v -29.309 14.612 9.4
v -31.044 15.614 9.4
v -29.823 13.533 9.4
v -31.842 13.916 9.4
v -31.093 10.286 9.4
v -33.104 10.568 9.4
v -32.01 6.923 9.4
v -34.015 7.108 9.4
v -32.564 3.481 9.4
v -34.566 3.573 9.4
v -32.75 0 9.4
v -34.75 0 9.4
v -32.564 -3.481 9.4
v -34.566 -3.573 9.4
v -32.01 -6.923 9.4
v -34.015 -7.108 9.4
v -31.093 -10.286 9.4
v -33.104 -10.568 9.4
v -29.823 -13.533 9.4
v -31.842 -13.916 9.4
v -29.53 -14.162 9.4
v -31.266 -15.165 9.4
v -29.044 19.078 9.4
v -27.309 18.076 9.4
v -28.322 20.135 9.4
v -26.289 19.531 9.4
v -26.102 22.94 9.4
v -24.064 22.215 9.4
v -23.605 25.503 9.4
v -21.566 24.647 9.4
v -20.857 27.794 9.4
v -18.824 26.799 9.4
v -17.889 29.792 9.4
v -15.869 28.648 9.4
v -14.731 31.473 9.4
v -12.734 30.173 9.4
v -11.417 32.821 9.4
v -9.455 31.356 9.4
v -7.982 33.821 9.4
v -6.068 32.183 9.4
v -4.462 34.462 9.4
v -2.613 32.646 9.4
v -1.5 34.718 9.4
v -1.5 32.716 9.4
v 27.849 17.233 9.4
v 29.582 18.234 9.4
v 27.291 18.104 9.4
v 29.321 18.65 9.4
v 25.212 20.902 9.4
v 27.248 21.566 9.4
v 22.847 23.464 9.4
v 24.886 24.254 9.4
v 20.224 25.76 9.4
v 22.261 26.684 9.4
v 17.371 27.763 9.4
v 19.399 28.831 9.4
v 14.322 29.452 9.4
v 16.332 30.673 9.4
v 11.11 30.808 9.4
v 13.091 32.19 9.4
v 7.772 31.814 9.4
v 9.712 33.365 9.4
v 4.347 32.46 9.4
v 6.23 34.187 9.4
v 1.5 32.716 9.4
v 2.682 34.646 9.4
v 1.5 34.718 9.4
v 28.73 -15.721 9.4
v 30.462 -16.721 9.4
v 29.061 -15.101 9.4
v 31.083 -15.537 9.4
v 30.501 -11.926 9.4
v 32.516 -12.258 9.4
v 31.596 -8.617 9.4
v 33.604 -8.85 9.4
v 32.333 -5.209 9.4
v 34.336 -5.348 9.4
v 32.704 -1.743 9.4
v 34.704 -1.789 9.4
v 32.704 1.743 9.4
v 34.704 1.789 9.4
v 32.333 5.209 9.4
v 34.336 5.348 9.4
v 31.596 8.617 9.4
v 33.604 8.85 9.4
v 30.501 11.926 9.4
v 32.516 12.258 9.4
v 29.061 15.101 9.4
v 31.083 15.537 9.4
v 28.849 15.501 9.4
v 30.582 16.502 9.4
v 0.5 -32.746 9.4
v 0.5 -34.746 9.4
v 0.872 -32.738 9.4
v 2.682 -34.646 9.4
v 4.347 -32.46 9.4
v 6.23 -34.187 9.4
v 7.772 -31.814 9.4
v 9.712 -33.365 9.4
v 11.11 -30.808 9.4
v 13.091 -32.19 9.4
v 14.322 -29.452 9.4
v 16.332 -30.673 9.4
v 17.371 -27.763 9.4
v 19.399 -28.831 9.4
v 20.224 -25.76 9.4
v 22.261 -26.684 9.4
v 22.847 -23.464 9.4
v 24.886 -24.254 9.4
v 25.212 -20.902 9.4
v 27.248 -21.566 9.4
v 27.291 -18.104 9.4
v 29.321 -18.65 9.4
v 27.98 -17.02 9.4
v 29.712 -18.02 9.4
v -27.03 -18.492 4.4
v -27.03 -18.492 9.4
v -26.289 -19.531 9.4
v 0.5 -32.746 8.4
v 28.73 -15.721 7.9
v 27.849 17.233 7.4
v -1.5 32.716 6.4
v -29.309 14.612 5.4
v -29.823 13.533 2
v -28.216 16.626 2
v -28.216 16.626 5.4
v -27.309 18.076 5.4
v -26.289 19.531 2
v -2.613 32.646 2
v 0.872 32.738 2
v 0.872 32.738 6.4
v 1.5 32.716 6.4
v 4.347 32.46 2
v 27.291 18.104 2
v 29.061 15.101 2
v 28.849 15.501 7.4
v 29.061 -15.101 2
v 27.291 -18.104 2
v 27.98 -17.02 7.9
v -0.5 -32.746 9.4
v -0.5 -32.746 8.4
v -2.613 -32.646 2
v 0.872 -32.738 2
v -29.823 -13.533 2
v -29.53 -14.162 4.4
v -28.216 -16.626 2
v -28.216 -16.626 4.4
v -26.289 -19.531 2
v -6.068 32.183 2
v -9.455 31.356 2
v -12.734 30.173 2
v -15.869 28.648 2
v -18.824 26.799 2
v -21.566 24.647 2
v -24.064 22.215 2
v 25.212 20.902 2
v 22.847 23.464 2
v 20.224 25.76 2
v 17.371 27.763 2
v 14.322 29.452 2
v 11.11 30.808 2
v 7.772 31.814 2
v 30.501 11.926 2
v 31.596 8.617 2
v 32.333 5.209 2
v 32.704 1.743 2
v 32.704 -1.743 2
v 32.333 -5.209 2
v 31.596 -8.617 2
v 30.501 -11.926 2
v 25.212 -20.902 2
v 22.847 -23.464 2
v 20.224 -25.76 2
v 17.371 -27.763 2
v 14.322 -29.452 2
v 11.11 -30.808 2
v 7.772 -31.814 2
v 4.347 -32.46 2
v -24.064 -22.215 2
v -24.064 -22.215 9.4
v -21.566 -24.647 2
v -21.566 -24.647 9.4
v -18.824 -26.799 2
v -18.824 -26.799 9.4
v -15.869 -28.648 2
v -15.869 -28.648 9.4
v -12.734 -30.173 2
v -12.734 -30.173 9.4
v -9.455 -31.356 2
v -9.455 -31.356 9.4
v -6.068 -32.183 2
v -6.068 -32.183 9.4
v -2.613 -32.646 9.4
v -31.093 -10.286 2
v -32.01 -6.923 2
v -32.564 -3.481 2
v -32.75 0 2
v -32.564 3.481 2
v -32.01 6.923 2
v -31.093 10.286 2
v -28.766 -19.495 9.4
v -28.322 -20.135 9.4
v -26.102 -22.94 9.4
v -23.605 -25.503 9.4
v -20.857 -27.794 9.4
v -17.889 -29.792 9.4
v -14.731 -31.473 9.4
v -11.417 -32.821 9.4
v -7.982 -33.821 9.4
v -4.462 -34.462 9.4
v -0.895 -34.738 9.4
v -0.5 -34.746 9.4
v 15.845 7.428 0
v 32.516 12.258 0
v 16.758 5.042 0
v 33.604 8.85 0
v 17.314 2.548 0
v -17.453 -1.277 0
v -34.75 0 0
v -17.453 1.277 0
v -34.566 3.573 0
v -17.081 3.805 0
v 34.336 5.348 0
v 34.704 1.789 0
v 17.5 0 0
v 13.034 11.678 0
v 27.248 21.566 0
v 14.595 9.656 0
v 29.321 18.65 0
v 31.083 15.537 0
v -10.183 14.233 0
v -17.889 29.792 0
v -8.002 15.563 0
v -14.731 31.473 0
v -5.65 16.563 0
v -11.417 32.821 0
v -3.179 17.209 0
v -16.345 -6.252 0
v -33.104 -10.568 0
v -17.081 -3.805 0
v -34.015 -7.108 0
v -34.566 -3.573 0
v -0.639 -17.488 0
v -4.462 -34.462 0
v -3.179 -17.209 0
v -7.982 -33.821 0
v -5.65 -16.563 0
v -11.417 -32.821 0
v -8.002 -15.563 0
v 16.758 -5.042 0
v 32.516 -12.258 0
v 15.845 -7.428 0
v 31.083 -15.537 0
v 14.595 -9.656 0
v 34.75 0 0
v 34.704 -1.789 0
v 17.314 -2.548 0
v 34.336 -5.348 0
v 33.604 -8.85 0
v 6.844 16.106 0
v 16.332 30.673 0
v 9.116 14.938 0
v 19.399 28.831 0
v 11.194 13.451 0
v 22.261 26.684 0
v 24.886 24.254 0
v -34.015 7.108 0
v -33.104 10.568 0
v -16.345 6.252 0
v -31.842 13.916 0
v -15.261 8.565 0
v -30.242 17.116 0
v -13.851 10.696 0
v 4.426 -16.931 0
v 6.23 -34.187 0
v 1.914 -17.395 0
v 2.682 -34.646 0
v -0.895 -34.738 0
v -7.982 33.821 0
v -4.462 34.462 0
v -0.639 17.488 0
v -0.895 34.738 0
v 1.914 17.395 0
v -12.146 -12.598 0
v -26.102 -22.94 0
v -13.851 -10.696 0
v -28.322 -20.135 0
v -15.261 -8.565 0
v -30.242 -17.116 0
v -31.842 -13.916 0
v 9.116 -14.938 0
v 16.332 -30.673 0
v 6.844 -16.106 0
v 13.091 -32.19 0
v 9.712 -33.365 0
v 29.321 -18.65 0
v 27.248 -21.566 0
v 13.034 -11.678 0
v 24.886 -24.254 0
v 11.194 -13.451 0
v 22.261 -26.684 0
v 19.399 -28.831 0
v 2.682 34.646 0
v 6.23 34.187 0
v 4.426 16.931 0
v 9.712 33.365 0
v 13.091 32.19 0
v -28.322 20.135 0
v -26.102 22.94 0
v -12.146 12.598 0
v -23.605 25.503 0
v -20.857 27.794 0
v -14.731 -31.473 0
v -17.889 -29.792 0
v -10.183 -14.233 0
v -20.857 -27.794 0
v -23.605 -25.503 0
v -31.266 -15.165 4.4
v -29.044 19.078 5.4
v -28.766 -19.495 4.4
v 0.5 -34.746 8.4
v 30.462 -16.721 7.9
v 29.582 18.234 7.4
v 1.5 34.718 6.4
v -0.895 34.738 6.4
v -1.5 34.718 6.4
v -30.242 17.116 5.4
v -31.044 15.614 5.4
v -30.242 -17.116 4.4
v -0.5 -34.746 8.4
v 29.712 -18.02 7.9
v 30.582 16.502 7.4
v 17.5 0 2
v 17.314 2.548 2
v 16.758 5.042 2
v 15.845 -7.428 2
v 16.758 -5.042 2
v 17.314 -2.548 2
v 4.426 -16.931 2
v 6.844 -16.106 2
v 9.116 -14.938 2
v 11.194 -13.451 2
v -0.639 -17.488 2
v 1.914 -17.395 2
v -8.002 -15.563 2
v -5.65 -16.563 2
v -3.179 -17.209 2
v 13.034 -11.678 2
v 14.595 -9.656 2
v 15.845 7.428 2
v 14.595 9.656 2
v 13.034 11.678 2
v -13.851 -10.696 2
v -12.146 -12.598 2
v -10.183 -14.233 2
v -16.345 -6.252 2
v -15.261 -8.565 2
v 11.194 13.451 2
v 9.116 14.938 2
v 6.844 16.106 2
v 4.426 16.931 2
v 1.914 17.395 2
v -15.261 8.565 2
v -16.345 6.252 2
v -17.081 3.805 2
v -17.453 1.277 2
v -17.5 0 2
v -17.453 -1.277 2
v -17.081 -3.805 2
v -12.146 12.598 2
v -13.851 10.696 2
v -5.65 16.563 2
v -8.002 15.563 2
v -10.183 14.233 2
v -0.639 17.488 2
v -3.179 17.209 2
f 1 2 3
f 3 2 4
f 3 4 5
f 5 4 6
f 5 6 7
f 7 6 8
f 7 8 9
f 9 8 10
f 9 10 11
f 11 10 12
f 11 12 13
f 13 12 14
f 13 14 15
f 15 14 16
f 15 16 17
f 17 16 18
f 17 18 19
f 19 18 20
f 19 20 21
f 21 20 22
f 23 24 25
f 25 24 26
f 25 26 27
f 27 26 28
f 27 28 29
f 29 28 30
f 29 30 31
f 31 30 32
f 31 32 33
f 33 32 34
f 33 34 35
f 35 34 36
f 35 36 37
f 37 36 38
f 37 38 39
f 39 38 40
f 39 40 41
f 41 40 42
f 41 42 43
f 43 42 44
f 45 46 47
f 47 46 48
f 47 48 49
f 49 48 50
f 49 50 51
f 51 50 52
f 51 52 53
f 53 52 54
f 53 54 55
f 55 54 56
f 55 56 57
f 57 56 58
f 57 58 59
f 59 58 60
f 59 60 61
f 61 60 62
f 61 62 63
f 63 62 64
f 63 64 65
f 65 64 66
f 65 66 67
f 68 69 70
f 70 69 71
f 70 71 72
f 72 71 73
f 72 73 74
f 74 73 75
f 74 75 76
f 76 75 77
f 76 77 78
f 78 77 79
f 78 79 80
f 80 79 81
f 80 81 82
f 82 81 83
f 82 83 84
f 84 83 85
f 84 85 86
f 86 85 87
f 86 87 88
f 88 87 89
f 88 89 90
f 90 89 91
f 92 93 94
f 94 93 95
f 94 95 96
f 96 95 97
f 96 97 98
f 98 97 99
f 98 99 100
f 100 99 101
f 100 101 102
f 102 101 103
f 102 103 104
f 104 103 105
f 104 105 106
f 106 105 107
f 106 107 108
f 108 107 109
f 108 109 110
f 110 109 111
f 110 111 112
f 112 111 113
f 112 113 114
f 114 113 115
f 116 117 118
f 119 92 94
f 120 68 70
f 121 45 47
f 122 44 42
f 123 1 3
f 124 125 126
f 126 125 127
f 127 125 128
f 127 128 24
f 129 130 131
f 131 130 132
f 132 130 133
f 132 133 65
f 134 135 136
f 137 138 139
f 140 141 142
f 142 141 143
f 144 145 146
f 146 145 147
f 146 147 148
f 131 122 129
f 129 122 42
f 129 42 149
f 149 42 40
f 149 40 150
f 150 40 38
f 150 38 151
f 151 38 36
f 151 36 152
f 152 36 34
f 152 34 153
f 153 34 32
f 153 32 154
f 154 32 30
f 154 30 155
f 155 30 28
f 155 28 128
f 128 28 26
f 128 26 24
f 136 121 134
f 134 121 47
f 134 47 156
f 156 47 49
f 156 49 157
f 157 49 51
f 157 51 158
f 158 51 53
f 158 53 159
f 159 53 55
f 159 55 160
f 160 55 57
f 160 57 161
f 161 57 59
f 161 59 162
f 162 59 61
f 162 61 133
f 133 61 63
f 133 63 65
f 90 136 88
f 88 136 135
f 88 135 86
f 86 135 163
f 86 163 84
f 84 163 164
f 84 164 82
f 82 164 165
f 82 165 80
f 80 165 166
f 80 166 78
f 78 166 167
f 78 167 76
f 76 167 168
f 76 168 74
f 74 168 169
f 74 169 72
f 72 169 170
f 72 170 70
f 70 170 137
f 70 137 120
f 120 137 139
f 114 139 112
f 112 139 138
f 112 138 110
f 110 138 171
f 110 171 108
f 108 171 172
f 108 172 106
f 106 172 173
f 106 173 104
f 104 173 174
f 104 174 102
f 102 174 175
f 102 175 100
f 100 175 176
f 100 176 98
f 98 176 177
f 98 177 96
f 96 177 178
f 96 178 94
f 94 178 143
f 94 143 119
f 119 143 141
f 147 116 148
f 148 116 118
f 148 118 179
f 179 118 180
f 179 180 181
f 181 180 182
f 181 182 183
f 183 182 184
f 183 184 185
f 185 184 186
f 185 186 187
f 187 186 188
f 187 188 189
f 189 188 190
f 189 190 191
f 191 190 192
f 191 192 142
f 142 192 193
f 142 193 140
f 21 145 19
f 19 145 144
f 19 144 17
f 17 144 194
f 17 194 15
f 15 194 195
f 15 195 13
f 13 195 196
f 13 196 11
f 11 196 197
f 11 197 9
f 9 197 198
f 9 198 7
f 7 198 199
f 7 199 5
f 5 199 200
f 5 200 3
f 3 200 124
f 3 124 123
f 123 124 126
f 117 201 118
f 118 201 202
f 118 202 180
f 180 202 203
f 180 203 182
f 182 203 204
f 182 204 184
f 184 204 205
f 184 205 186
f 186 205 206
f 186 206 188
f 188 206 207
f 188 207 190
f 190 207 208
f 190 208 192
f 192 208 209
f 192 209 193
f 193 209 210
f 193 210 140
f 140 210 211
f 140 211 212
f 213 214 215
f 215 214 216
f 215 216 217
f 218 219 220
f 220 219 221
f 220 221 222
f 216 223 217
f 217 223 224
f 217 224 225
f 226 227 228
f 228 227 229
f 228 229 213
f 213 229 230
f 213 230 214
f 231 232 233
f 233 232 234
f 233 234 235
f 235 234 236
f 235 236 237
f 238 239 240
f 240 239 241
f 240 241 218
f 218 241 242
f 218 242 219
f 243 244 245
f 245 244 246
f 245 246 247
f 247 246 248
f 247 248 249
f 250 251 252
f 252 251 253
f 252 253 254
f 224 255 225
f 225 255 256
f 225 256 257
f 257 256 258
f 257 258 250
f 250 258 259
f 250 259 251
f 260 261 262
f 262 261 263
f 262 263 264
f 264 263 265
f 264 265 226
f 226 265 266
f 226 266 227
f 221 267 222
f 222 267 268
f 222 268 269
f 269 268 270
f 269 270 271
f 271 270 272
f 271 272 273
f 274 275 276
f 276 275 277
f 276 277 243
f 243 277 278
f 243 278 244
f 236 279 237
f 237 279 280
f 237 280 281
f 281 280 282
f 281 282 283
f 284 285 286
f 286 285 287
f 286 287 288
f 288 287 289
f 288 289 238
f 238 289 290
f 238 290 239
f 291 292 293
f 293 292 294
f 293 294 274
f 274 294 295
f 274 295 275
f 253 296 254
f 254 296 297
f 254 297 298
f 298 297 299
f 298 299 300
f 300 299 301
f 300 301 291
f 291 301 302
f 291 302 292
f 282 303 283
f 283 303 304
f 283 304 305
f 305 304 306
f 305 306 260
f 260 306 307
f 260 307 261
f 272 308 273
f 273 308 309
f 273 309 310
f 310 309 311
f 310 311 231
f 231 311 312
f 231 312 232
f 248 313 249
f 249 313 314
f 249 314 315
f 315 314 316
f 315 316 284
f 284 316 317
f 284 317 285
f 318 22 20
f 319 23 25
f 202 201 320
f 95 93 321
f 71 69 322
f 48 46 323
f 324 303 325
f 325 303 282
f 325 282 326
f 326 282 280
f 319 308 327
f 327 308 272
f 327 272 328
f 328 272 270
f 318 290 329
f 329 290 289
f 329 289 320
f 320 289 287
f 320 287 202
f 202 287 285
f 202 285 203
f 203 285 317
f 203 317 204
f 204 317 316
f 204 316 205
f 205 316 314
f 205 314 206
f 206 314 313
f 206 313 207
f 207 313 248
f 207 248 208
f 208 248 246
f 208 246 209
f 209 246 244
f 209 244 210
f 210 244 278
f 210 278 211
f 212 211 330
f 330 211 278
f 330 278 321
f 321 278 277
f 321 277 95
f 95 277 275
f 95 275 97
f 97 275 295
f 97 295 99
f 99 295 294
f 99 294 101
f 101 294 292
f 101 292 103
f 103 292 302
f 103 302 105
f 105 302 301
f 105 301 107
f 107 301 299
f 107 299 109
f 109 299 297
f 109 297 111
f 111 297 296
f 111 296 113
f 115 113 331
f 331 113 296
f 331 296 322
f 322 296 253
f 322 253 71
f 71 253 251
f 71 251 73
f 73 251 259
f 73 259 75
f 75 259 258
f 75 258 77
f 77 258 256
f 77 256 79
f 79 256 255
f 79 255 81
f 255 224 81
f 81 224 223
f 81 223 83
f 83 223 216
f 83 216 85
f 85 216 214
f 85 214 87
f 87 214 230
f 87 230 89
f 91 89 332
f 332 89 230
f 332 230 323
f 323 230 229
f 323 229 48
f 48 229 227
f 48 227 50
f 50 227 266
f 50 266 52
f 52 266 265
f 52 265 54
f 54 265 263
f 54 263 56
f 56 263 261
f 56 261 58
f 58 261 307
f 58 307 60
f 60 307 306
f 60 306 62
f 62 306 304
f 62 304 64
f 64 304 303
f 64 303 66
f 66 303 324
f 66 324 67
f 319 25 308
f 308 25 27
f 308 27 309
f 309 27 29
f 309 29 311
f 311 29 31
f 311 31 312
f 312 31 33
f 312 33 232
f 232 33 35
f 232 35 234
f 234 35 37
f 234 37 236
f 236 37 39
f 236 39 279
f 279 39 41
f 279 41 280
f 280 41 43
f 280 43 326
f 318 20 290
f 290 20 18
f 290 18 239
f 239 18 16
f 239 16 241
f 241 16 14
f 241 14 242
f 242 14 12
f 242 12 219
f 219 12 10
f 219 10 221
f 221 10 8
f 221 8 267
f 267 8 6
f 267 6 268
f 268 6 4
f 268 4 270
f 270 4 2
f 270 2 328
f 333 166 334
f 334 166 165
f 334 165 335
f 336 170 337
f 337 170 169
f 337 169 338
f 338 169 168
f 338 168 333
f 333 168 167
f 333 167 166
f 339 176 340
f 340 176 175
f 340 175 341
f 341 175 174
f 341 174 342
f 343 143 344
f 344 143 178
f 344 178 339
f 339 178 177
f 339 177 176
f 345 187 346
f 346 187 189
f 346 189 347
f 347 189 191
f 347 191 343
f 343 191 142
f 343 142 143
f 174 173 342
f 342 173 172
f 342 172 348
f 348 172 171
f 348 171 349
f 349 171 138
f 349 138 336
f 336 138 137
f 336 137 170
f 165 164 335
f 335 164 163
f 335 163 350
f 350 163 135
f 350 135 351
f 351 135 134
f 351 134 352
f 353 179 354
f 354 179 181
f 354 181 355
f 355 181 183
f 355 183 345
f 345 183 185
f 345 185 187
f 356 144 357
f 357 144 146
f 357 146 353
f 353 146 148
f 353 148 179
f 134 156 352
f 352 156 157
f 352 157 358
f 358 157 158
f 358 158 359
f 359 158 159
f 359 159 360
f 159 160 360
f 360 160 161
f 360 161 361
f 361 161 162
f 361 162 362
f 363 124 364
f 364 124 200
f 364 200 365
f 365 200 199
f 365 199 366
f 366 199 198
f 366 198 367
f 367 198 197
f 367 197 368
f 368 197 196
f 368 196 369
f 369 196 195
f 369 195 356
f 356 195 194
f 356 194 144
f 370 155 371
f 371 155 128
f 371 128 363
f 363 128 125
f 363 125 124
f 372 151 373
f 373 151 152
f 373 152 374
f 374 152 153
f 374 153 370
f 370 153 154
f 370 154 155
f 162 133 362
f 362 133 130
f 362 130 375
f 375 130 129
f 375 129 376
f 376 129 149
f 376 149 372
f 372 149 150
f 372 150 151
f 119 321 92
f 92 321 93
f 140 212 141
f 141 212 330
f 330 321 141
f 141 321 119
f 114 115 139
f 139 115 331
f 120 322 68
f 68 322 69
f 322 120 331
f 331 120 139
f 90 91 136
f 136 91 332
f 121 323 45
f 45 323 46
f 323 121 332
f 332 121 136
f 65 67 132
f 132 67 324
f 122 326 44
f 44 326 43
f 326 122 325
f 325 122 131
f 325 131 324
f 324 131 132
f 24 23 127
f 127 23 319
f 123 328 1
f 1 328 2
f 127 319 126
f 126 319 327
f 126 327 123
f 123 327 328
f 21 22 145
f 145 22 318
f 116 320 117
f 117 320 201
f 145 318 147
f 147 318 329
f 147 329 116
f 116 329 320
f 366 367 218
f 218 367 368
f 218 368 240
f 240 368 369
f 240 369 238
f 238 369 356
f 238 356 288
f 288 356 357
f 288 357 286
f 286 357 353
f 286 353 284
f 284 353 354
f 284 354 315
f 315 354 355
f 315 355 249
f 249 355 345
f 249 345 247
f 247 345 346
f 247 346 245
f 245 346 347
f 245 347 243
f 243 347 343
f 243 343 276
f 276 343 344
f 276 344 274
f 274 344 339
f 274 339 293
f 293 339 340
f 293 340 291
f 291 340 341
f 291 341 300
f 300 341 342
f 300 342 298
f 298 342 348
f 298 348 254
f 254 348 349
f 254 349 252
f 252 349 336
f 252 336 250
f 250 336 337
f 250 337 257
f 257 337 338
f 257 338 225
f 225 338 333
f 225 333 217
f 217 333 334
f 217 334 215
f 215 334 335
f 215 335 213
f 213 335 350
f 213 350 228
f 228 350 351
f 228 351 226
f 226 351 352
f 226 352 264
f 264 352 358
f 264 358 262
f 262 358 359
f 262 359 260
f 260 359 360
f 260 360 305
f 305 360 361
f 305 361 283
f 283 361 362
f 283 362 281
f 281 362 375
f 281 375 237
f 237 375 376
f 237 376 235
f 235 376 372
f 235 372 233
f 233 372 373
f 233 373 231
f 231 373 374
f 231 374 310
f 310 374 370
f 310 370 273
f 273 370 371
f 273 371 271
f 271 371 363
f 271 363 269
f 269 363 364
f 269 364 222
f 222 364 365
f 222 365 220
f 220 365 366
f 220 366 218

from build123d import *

# Parameters (mm, degrees)
ESQUISSE1_R                  = 34.75
ESQUISSE1_R_2                = 32.75
BOSS_EXTRU_1_DEPTH           = 9.4
ESQUISSE2_R                  = 34.75
BOSS_EXTRU_2_DEPTH           = 2
ESQUISSE3_W                  = 1
ESQUISSE3_H                  = 2.5
ENL_V_MAT_EXTRU_1_DEPTH      = 1
ENL_V_MAT_EXTRU_2_DEPTH      = 1.5
ENL_V_MAT_EXTRU_3_DEPTH      = 2
ESQUISSE6_W                  = 3
ESQUISSE6_H                  = 2.5
ENL_V_MAT_EXTRU_4_DEPTH      = 3
ENL_V_MAT_EXTRU_5_DEPTH      = 4
ENL_V_MAT_EXTRU_6_DEPTH      = 5
ENL_V_MAT_EXTRU_7_DEPTH      = 50.697937583
ENL_V_MAT_EXTRU_7_DEPTH_BACK = 50.697937583
ESQUISSE9_R                  = 17.5


with BuildPart() as part:
    # Esquisse1 → Boss.-Extru.1 (new body)
    with BuildSketch(Plane.XY):
        Circle(ESQUISSE1_R)
        Circle(ESQUISSE1_R_2, mode=Mode.SUBTRACT)
    extrude(amount=BOSS_EXTRU_1_DEPTH)

    # Esquisse2 → Boss.-Extru.2 (add)
    with BuildSketch(Plane(origin=(0, 0, 0), x_dir=(-1, 0, 0), z_dir=(0, 0, -1))):
        with Locations(Location((0, 0, 0), (0, 0, 180))):
            Circle(ESQUISSE2_R)
    extrude(amount=-BOSS_EXTRU_2_DEPTH)

    # Esquisse3 → Enlèv. mat.-Extru.1 (cut)
    with BuildSketch(Plane.XY.offset(9.4)):
        with Locations((0, -33.996182984)):
            Rectangle(ESQUISSE3_W, ESQUISSE3_H)
    extrude(amount=-ENL_V_MAT_EXTRU_1_DEPTH, mode=Mode.SUBTRACT)

    # Esquisse4 → Enlèv. mat.-Extru.2 (cut)
    with BuildSketch(Plane.XY.offset(9.4)):
        Polygon((28.729893758, -15.721186491), (27.979893758, -17.020224597), (30.144957267, -18.270224597), (30.894957267, -16.971186491), align=None)
    extrude(amount=-ENL_V_MAT_EXTRU_2_DEPTH, mode=Mode.SUBTRACT)

    # Esquisse5 → Enlèv. mat.-Extru.3 (cut)
    with BuildSketch(Plane.XY.offset(9.4)):
        Polygon((27.849107129, 17.233390036), (28.849107129, 15.501339228), (31.014170638, 16.751339228), (30.014170638, 18.483390036), align=None)
    extrude(amount=-ENL_V_MAT_EXTRU_3_DEPTH, mode=Mode.SUBTRACT)

    # Esquisse6 → Enlèv. mat.-Extru.4 (cut)
    with BuildSketch(Plane.XY.offset(9.4)):
        with Locations((0, 33.965630821)):
            Rectangle(ESQUISSE6_W, ESQUISSE6_H)
    extrude(amount=-ENL_V_MAT_EXTRU_4_DEPTH, mode=Mode.SUBTRACT)

    # Esquisse7 → Enlèv. mat.-Extru.5 (cut)
    with BuildSketch(Plane.XY.offset(9.4)):
        Polygon((-29.309395525, 14.612386319), (-27.309395525, 18.076487935), (-29.474459035, 19.326487935), (-31.474459035, 15.862386319), align=None)
    extrude(amount=-ENL_V_MAT_EXTRU_5_DEPTH, mode=Mode.SUBTRACT)

    # Esquisse8 → Enlèv. mat.-Extru.6 (cut)
    with BuildSketch(Plane.XY.offset(9.4)):
        Polygon((-27.029575227, -18.492283879), (-29.529575227, -14.16215686), (-31.694638736, -15.41215686), (-29.194638736, -19.742283879), align=None)
    extrude(amount=-ENL_V_MAT_EXTRU_6_DEPTH, mode=Mode.SUBTRACT)

    # Esquisse9 → Enlèv. mat.-Extru.7 (cut, two sides: drawn at the far end of the back side and taken through both)
    with BuildSketch(Plane.XY.offset(2).offset(-ENL_V_MAT_EXTRU_7_DEPTH_BACK)):
        Circle(ESQUISSE9_R)
    extrude(amount=ENL_V_MAT_EXTRU_7_DEPTH + ENL_V_MAT_EXTRU_7_DEPTH_BACK, mode=Mode.SUBTRACT)


solid = part.part
